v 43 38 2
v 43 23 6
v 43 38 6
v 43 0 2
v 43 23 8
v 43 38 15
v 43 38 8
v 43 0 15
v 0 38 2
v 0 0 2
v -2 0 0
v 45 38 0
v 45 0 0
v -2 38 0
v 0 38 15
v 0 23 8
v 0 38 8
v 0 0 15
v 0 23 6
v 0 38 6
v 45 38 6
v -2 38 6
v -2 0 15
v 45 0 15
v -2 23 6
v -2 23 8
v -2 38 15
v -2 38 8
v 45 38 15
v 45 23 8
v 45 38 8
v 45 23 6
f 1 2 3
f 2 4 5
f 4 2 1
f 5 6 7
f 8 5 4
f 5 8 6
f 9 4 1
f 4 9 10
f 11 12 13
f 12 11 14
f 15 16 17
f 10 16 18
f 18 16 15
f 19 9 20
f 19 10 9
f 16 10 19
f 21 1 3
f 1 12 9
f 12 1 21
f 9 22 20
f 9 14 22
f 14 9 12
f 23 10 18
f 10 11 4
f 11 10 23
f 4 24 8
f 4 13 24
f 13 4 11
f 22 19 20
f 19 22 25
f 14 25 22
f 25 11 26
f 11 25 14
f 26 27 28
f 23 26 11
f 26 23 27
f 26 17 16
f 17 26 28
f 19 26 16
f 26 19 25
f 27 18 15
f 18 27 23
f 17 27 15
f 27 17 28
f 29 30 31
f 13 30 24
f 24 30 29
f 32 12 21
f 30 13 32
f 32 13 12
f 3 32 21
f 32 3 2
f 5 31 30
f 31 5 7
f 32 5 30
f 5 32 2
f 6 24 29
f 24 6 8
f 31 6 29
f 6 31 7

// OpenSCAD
union()
{
	cube([43, 38, 2], false);
	
	translate([-2, 0, 0])
		cube([2, 38, 6], false);
	translate([-2, 0, 6])
		cube([2, 23, 2], false);
	translate([-2, 0, 8])
		cube([2, 38, 7], false);
	
	translate([43, 0, 0])
		cube([2, 38, 6], false);
	translate([43, 0, 6])
		cube([2, 23, 2], false);
	translate([43, 0, 8])
		cube([2, 38, 7], false);
	
}
